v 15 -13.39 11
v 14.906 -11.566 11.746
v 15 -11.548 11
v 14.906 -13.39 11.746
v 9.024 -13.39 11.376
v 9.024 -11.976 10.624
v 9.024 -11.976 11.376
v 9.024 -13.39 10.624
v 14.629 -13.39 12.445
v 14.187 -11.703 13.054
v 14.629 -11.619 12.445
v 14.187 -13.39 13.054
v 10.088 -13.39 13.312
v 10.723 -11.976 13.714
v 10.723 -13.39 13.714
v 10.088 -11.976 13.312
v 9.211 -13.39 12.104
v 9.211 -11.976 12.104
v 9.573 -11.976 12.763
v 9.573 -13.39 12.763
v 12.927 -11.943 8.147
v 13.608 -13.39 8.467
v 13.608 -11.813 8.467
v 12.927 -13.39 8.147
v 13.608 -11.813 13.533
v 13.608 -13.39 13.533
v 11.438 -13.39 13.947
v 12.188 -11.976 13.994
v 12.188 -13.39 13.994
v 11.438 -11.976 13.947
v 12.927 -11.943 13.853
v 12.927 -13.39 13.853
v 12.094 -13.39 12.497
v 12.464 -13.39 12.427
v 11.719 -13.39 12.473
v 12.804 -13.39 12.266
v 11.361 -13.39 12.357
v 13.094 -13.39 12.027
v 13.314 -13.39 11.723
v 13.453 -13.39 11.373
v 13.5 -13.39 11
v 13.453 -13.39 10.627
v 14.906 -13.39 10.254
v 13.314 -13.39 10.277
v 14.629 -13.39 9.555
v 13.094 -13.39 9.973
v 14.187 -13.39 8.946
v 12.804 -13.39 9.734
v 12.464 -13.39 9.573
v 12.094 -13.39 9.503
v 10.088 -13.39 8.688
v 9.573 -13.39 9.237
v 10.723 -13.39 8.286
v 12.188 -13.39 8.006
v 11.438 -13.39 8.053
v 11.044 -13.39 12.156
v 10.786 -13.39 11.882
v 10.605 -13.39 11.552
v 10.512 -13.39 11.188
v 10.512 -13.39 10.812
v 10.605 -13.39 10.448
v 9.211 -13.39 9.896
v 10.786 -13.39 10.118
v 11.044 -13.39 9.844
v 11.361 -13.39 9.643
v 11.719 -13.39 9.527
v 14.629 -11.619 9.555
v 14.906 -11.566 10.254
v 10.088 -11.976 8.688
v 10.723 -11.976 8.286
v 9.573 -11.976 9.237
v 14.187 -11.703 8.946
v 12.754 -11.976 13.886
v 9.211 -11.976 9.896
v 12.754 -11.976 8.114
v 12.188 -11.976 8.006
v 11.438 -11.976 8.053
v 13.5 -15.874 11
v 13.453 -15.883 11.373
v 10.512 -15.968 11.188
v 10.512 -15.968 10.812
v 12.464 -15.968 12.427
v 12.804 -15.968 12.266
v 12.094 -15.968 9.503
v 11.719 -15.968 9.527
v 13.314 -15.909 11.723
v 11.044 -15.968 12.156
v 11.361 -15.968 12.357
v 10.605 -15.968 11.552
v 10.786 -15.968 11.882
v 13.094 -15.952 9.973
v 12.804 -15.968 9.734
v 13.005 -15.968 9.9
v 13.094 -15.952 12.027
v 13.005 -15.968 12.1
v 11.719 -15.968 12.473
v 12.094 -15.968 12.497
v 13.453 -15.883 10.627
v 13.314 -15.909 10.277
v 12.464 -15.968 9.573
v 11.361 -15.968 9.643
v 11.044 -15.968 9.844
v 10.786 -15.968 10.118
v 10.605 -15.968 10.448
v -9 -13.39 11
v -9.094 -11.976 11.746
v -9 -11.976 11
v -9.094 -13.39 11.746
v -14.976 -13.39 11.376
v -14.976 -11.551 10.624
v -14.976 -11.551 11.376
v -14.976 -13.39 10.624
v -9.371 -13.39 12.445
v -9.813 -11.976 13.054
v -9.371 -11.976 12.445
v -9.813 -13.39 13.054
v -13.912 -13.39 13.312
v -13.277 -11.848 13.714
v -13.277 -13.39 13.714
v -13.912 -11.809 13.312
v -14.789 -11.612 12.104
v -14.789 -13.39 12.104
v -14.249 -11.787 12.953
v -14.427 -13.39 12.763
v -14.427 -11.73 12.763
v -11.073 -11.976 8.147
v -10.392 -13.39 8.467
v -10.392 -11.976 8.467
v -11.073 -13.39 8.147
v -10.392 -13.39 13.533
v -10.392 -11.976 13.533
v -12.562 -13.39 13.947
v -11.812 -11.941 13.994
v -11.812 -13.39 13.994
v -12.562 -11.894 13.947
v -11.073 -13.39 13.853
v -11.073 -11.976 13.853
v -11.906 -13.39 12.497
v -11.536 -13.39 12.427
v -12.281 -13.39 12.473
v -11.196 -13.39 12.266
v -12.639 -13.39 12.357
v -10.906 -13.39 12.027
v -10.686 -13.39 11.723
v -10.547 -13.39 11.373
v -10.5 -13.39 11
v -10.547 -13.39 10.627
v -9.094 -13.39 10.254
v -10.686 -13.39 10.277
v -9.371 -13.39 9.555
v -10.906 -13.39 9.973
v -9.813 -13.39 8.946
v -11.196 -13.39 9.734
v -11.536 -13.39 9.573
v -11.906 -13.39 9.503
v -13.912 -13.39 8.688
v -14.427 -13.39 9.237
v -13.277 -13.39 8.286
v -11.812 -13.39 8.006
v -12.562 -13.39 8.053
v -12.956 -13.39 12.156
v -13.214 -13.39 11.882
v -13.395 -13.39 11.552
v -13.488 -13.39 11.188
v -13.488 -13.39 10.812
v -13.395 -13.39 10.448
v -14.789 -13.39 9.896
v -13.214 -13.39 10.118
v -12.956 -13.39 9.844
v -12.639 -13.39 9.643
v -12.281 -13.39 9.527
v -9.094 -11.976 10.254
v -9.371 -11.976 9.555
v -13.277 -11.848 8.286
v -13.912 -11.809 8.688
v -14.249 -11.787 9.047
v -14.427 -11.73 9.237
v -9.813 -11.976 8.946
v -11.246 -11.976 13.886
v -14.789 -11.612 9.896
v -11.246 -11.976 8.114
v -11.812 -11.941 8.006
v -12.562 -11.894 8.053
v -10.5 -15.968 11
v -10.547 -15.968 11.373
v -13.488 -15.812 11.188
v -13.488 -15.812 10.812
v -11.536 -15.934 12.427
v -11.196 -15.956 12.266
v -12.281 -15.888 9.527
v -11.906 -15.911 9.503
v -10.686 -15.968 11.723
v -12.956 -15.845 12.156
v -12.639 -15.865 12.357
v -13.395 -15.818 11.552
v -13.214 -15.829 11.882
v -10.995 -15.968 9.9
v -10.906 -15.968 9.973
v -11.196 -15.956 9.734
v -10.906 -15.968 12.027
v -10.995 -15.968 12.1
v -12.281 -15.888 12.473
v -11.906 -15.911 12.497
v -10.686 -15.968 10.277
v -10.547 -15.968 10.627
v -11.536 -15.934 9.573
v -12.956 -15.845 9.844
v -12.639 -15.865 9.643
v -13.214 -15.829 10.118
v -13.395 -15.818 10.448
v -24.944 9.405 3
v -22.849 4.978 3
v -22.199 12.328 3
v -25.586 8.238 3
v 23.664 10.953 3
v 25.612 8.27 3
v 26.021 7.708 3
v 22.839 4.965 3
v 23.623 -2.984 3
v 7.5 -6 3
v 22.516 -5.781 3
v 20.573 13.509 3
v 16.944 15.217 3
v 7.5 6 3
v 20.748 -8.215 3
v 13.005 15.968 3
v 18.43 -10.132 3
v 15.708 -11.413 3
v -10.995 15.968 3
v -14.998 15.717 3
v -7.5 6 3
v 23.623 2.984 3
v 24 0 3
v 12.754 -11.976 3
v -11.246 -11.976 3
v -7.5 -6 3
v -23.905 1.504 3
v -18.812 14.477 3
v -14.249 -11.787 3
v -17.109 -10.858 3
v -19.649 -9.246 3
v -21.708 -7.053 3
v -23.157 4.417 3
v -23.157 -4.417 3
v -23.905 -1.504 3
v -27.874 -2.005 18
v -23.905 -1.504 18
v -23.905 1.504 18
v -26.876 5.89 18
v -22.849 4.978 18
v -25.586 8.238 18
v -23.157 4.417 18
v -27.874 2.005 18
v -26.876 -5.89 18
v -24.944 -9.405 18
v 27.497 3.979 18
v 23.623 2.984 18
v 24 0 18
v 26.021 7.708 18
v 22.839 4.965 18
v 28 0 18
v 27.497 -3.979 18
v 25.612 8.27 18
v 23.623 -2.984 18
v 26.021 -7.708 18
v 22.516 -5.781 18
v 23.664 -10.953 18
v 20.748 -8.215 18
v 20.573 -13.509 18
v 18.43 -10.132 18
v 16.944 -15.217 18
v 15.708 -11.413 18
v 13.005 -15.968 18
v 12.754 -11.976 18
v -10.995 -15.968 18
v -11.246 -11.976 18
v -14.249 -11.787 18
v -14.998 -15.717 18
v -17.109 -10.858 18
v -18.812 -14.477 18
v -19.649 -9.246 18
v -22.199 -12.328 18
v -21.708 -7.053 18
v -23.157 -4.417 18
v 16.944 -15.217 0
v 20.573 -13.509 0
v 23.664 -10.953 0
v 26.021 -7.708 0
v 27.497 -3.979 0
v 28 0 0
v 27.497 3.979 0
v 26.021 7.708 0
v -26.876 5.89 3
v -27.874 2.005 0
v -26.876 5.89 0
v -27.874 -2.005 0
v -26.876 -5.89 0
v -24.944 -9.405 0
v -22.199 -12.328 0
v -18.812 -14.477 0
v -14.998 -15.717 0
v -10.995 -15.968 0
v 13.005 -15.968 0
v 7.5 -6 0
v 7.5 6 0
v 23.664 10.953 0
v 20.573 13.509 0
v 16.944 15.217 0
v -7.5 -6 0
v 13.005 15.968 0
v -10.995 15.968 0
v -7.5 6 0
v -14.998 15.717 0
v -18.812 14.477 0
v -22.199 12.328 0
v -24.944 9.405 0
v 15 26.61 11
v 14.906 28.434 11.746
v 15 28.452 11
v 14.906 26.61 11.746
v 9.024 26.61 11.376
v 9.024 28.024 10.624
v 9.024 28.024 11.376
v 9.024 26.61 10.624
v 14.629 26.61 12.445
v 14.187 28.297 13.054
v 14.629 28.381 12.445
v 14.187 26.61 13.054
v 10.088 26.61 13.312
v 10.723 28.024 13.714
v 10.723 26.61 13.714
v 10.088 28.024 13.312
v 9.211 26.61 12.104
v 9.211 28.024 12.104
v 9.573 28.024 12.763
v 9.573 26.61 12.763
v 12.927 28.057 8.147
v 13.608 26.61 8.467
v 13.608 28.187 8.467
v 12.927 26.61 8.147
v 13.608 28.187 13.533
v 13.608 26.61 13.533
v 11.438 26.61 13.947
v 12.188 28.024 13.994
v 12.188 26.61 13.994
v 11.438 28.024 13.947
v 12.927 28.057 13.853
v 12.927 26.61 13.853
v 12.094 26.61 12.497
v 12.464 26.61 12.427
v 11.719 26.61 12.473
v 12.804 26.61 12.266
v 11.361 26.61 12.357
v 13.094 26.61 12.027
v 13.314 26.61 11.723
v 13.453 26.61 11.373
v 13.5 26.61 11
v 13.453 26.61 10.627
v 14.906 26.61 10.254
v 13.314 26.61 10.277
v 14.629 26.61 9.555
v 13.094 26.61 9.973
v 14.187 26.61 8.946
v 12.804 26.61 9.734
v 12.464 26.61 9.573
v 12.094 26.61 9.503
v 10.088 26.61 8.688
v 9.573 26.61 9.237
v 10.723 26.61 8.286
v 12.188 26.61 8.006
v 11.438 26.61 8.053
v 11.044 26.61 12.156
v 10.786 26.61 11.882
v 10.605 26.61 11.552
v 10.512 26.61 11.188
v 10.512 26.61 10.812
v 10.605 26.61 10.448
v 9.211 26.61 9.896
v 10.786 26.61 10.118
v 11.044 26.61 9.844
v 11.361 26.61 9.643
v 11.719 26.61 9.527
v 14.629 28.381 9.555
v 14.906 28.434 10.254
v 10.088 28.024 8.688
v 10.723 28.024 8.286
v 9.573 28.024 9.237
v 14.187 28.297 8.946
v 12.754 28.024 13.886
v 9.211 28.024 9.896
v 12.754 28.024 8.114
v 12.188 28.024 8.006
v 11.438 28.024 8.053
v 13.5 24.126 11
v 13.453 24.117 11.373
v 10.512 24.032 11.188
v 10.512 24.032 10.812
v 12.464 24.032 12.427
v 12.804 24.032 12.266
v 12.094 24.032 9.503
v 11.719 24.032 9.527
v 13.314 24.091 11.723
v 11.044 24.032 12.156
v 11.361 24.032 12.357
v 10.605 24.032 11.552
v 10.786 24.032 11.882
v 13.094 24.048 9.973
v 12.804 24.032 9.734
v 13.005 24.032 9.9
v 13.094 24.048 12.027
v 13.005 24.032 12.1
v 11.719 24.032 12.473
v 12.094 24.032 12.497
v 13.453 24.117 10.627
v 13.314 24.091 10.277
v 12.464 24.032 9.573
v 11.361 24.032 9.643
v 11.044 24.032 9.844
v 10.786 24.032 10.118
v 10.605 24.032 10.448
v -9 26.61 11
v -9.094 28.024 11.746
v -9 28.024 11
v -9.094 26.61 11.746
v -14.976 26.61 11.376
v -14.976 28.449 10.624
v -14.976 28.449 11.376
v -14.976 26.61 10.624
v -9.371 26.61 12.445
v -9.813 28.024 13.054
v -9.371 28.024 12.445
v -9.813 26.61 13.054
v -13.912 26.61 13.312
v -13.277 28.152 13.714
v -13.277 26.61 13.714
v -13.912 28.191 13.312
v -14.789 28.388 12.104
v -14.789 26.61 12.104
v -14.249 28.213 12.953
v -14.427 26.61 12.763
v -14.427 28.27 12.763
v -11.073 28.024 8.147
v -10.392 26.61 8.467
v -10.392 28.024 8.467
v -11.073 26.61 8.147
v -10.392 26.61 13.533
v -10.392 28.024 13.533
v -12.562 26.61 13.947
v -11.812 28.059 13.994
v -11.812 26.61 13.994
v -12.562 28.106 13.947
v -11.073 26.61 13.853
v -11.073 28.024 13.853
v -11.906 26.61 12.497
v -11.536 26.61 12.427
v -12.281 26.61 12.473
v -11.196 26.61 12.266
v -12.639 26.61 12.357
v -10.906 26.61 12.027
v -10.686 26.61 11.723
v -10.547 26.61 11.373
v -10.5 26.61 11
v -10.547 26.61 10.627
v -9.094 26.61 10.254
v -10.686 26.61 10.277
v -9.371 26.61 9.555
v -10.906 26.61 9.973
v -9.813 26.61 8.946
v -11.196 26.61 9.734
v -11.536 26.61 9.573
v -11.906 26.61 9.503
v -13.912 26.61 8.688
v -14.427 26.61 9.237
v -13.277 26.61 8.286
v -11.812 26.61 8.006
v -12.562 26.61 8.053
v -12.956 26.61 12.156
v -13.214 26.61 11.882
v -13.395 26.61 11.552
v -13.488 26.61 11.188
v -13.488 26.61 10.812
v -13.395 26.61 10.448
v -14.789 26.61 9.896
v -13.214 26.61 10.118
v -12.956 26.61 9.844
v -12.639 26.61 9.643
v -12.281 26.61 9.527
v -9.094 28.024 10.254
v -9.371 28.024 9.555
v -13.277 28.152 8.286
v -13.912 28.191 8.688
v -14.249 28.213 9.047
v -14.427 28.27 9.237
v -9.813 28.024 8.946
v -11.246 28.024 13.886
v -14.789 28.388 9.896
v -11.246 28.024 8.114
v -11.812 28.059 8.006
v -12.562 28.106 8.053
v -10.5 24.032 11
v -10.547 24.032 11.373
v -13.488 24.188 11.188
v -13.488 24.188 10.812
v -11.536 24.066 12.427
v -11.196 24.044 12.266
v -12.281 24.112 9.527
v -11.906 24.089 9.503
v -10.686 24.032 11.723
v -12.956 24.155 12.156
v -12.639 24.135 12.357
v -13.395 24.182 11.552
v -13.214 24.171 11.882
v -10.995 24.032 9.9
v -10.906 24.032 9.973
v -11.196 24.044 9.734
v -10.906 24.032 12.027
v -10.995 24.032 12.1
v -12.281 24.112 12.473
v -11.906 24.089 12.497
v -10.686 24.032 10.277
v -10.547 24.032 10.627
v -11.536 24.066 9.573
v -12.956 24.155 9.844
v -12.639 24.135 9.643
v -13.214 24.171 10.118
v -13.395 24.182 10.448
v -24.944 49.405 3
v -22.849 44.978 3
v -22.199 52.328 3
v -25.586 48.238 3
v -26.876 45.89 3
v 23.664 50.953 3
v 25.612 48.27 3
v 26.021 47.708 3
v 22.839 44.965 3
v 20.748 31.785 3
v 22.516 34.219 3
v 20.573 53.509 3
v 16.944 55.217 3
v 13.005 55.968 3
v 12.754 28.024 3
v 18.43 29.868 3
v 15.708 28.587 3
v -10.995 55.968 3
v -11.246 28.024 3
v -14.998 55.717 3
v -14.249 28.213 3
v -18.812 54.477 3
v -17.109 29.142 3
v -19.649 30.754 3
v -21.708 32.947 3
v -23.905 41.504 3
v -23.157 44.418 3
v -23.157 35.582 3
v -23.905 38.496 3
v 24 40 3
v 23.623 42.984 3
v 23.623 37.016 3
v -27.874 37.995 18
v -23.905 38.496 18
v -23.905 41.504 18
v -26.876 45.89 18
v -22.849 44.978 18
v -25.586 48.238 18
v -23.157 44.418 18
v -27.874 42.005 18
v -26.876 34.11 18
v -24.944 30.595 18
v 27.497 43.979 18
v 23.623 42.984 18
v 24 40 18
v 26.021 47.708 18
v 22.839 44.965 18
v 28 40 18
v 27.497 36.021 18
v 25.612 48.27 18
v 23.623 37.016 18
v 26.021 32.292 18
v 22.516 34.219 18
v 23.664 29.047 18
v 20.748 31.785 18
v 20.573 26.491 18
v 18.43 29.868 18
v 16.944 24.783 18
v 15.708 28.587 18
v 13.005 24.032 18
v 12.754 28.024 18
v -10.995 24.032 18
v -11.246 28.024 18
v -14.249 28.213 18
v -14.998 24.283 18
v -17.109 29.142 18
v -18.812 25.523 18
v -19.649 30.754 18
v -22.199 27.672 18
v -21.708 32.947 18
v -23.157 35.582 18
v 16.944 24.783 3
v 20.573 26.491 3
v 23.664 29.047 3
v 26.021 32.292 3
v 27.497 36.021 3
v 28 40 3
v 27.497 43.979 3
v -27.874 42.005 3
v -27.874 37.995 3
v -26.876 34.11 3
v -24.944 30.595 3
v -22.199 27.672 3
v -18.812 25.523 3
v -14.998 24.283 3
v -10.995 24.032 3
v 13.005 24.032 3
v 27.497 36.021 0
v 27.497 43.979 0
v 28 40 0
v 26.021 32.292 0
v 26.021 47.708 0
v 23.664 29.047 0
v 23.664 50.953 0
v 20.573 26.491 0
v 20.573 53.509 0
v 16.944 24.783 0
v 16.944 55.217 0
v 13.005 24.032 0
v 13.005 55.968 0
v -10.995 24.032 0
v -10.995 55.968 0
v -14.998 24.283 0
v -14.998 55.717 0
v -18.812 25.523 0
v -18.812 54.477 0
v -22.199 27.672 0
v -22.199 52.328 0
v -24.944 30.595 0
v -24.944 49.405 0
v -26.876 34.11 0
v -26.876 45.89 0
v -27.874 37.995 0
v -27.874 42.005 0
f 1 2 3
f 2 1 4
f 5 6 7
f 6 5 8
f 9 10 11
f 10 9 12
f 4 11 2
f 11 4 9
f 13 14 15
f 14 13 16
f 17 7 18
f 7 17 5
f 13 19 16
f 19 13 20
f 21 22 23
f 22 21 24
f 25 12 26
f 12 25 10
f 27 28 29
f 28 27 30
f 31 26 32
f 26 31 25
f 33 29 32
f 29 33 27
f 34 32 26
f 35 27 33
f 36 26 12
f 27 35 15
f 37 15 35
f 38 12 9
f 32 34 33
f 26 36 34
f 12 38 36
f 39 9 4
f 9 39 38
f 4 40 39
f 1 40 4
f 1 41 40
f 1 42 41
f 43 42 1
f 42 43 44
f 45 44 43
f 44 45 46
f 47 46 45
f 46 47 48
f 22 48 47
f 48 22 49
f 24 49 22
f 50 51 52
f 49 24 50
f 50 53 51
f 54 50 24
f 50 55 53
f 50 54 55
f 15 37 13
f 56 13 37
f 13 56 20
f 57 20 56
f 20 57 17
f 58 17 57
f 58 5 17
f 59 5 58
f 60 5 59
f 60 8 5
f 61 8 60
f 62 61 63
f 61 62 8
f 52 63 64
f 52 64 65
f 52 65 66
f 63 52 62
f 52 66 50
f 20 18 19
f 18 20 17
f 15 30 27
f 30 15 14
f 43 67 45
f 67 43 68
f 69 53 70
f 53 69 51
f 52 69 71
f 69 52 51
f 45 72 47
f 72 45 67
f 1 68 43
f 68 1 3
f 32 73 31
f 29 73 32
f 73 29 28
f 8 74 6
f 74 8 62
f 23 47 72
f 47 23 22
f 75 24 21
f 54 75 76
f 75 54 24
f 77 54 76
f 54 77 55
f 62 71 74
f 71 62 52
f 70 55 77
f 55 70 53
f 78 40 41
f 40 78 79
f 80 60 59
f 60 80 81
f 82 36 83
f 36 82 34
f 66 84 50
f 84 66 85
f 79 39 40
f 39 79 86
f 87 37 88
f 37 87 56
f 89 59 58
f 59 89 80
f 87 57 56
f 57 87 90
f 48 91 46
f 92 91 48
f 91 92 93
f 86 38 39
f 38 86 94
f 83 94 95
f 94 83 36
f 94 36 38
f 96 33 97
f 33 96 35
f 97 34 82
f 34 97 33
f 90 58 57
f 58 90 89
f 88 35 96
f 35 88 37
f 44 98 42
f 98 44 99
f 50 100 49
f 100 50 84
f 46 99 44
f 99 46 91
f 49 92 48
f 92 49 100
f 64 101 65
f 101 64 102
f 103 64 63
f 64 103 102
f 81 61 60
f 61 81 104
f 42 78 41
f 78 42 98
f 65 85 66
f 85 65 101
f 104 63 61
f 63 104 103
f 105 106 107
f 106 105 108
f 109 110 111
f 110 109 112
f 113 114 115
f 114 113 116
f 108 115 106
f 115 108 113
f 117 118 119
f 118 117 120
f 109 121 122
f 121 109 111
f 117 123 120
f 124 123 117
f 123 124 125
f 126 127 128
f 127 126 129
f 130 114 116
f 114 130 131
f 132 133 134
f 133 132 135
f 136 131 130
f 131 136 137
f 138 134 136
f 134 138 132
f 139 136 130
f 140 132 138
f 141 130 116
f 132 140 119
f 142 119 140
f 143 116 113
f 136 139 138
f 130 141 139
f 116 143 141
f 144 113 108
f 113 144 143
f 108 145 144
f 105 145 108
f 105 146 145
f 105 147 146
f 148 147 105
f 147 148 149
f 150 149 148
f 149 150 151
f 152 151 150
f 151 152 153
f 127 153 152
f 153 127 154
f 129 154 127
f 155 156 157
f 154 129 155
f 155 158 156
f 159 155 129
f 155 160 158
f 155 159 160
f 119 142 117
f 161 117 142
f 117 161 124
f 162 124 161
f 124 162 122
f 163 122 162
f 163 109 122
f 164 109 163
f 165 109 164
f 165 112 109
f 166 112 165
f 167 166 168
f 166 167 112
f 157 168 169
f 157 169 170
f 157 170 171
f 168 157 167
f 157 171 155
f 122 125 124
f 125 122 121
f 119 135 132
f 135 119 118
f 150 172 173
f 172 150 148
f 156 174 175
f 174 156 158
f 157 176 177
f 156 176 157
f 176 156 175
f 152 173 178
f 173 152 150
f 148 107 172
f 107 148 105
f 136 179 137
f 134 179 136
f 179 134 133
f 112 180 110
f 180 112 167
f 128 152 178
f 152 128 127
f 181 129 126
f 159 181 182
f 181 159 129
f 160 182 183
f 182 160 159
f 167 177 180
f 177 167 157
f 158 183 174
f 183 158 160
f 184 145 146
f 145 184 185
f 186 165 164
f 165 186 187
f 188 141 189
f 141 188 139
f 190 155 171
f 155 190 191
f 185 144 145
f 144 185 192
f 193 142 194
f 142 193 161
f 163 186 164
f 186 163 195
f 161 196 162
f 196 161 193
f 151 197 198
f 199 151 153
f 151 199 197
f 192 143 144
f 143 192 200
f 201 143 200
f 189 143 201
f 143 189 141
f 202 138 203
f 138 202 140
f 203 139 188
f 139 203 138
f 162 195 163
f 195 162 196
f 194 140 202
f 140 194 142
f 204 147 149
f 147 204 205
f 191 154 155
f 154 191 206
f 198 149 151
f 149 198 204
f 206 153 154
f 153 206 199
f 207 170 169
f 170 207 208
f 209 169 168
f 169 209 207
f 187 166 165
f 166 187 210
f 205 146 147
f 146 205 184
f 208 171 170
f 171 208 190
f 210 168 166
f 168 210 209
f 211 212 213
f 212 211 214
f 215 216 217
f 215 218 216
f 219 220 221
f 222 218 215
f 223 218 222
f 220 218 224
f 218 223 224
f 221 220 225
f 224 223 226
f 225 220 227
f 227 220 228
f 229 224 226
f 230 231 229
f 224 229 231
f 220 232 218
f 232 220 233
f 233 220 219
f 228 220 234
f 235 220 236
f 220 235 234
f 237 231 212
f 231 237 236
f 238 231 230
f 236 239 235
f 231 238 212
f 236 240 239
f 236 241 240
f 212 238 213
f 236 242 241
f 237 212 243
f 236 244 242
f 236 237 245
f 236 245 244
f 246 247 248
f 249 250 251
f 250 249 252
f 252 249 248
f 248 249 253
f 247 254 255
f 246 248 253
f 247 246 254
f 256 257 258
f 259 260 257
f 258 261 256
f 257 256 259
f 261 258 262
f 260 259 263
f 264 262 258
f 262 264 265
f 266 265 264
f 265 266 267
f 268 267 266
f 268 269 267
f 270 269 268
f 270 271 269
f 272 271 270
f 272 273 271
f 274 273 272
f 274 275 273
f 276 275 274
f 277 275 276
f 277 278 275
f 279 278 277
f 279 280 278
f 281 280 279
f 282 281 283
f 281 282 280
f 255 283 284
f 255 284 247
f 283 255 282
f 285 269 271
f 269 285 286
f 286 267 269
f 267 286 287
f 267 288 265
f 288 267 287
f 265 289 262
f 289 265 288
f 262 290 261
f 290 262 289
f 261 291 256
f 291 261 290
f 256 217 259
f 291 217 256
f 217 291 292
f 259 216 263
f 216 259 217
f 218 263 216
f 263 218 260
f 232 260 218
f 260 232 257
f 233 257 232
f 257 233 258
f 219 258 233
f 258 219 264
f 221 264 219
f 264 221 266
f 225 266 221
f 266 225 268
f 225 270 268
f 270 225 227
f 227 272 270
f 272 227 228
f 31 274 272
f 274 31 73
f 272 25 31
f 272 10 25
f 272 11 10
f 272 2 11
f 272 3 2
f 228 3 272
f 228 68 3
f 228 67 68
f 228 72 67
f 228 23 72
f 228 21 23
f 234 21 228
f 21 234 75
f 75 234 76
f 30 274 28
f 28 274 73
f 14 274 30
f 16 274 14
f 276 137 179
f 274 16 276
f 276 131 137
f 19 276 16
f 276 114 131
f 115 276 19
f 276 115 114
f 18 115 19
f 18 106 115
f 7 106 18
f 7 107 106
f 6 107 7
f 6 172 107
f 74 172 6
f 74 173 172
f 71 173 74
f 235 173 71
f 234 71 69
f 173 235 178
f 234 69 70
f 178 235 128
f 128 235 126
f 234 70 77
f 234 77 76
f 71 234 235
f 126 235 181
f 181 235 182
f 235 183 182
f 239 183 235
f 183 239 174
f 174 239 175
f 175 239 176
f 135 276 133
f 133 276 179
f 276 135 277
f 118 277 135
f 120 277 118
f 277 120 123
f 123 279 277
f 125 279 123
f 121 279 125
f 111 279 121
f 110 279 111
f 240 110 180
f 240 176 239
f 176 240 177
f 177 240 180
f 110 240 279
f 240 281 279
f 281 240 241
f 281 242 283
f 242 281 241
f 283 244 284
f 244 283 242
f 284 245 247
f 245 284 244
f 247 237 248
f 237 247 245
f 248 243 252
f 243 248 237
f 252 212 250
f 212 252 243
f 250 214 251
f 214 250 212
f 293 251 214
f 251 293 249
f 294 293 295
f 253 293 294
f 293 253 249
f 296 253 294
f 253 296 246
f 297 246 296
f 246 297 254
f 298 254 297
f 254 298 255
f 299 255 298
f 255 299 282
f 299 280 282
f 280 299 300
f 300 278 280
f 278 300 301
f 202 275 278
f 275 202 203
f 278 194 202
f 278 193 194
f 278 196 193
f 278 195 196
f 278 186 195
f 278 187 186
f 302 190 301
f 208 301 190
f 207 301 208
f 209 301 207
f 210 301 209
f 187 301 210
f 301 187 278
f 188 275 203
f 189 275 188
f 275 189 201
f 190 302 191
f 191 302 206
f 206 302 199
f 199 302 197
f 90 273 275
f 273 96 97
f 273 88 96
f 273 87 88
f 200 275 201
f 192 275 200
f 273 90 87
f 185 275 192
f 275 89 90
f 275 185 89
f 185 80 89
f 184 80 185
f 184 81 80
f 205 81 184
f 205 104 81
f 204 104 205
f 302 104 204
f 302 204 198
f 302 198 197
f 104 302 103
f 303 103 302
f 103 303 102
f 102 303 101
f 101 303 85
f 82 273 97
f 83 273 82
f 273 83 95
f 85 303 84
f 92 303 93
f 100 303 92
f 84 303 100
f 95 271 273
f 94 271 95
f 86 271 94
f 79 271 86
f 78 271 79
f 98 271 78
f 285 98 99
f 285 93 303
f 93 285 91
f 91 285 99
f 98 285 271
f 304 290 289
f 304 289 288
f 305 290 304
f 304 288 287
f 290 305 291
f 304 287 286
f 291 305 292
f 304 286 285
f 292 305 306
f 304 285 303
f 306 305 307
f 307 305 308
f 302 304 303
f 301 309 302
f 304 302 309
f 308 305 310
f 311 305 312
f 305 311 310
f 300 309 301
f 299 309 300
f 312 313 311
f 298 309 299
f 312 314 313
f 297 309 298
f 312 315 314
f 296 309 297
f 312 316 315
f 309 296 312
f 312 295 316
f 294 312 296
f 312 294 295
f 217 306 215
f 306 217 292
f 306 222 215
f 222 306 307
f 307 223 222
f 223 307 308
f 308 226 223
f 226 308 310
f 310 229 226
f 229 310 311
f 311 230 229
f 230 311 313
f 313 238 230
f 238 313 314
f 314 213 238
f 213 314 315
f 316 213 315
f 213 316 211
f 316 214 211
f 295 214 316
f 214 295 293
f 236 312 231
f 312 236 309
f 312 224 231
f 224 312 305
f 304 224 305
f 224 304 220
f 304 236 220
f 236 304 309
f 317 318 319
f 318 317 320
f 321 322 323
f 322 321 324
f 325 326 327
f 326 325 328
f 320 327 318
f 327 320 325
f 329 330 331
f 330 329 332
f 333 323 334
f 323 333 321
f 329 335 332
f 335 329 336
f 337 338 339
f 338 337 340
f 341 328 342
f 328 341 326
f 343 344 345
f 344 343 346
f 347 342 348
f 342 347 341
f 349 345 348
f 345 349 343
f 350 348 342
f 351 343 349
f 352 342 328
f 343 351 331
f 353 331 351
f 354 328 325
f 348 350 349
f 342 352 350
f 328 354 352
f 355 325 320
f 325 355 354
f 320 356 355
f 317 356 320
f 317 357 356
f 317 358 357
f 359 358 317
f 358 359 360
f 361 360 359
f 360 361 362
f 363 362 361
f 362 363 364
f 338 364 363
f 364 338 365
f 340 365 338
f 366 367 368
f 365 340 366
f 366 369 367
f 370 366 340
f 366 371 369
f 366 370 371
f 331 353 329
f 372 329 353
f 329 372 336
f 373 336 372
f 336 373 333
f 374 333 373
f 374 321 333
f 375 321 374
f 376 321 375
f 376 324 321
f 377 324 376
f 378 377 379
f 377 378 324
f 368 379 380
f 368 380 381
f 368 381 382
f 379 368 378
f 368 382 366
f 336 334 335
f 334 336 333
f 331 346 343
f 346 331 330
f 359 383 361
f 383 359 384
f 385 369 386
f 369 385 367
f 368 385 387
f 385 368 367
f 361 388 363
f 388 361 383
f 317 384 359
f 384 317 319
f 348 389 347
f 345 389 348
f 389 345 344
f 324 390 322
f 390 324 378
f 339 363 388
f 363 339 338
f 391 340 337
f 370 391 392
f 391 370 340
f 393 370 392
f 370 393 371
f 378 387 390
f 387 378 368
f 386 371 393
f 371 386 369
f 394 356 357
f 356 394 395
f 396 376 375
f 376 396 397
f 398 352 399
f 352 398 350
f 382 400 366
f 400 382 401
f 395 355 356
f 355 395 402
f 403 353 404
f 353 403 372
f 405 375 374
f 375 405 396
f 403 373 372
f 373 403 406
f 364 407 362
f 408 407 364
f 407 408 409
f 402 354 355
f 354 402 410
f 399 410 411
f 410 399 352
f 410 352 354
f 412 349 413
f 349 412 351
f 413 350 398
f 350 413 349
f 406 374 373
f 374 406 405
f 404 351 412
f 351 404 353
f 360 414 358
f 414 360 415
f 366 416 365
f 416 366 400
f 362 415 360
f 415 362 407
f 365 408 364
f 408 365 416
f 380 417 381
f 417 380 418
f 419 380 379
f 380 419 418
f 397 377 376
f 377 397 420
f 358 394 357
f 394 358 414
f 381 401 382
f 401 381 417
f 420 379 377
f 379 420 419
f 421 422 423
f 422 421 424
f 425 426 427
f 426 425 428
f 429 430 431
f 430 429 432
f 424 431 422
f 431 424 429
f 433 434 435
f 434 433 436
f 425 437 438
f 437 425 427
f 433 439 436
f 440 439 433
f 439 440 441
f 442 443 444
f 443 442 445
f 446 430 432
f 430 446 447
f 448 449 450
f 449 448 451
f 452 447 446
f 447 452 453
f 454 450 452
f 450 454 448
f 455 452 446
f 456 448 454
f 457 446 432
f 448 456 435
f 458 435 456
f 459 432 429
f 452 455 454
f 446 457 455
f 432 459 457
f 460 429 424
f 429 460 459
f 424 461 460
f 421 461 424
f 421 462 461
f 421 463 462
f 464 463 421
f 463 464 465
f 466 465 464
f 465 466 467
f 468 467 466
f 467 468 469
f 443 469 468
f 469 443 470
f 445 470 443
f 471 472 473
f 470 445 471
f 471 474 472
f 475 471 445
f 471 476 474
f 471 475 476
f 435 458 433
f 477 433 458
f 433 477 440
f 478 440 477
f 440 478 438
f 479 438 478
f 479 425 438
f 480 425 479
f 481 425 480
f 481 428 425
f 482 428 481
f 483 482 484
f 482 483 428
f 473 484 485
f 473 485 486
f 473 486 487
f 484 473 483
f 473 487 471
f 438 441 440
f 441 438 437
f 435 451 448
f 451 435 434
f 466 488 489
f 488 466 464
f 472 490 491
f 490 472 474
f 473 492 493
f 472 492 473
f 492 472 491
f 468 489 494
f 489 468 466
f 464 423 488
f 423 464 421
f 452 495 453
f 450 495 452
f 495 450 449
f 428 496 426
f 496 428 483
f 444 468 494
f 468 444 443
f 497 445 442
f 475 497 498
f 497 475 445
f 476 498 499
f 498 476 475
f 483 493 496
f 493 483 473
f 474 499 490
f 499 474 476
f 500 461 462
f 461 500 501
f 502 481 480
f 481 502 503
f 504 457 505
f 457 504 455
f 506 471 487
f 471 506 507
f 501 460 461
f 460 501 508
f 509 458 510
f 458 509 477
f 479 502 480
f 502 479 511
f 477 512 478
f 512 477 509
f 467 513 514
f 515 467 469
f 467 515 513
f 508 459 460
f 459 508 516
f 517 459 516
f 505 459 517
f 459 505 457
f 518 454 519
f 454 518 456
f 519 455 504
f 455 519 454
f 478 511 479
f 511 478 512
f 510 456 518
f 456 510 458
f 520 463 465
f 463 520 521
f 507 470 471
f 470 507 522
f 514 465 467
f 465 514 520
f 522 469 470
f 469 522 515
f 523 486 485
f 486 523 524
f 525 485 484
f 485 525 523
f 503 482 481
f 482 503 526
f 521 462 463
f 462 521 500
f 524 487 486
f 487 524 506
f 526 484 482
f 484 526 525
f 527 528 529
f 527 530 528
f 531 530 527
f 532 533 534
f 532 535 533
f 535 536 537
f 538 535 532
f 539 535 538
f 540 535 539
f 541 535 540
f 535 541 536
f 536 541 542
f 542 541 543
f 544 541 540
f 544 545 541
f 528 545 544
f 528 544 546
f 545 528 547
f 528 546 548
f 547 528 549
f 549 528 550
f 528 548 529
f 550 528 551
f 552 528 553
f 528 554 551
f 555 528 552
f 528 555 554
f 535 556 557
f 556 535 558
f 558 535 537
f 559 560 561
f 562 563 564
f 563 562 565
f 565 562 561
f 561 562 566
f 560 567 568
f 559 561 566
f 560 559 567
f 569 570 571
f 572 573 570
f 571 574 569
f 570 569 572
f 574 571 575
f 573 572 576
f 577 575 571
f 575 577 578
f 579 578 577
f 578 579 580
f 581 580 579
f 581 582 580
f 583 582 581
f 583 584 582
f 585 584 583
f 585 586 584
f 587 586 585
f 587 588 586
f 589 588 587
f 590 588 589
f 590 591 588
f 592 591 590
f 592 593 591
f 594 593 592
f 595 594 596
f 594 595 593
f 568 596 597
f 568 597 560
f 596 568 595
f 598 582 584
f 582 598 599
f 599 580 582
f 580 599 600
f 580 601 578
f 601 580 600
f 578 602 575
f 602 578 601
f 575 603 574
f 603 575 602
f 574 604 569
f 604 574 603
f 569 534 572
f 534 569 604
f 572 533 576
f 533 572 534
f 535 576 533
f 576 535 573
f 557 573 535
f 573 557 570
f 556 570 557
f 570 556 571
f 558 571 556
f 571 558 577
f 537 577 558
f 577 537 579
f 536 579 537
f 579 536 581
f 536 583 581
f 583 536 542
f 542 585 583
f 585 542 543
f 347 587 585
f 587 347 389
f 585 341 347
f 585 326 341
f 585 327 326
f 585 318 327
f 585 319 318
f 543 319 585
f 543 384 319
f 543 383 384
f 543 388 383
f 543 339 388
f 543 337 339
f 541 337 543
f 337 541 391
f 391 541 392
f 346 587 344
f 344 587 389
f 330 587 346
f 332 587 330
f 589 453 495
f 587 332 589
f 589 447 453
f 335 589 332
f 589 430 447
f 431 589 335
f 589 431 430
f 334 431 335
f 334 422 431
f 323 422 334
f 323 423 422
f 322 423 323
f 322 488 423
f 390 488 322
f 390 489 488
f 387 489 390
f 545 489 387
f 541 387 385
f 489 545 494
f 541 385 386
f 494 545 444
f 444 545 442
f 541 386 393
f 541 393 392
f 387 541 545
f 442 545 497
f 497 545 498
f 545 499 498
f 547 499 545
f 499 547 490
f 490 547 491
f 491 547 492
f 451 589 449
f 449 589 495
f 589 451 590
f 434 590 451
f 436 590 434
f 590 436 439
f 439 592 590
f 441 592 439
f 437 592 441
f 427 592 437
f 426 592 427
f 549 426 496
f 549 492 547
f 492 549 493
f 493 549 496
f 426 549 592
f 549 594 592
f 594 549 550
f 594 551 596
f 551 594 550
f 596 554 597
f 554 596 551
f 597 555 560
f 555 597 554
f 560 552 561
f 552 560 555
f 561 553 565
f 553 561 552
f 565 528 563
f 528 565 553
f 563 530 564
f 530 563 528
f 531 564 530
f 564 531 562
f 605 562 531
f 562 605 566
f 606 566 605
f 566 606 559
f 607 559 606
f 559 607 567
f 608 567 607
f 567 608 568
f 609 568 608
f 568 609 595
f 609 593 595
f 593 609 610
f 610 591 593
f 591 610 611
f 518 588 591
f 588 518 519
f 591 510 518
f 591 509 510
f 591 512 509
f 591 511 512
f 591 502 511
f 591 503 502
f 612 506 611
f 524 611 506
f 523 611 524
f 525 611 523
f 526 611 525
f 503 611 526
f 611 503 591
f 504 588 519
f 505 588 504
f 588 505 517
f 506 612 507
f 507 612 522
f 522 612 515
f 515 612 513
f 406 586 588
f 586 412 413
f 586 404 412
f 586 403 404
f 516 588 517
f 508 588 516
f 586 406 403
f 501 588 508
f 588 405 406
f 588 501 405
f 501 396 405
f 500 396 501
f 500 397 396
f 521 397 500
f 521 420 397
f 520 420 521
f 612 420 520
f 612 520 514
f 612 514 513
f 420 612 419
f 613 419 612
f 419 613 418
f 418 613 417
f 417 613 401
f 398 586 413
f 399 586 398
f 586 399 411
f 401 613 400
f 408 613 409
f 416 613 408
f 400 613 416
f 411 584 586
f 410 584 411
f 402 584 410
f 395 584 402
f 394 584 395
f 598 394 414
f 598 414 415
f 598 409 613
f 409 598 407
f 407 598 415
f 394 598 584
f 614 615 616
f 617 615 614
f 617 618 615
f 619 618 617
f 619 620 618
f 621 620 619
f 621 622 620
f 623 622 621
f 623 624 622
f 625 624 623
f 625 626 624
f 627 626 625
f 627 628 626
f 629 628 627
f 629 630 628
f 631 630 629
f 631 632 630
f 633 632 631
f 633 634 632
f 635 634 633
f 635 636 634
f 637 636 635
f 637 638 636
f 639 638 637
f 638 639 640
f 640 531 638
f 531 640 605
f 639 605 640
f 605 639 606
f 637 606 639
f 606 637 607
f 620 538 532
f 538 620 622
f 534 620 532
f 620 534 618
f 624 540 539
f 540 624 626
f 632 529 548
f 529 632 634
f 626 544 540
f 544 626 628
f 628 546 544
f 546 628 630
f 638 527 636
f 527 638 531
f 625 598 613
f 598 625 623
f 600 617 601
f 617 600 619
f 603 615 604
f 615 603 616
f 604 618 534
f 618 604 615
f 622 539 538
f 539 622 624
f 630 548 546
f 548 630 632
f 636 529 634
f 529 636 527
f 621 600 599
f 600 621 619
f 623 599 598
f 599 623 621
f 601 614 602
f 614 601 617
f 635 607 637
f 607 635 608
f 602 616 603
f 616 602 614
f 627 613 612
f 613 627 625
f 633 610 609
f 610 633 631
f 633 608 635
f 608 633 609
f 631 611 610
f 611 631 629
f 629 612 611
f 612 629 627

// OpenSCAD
$fn = 25;

module outerShape() {
	hull() {
		translate([-12, 0]) circle(d=32);
		translate([12, 0]) circle(d=32);
	}
}

module innerShape() {
	hull() {
		translate([-12, 0]) circle(d=24);
		translate([12, 0]) circle(d=24);
	}
}

module screwHole() {
	translate([0, 0, -0.01]) cylinder(d = 6, h = 0.4*6);
	cylinder(d = 3, h = 1.01*6);
}

module battery(includeHole) {
	linear_extrude(height=3) {
		difference() {
			outerShape();
			if (includeHole) square([15, 12], center=true);
		}
	}

	translate([0, 0, 3]) difference() {
		linear_extrude(height=15) {
			difference() {
				outerShape();
				innerShape();
				translate([10, 13]) rotate([0, 0, 50]) square(30, center=true);
				translate([-10, 13]) rotate([0, 0, -50]) square(30, center=true);
			}
		}
		translate([12, -11, 8]) rotate([90, 0, 0]) screwHole();
		translate([-12, -11, 8]) rotate([90, 0, 0]) screwHole();
	}
}

battery(true);
translate([0, 40, 0]) battery(false);
